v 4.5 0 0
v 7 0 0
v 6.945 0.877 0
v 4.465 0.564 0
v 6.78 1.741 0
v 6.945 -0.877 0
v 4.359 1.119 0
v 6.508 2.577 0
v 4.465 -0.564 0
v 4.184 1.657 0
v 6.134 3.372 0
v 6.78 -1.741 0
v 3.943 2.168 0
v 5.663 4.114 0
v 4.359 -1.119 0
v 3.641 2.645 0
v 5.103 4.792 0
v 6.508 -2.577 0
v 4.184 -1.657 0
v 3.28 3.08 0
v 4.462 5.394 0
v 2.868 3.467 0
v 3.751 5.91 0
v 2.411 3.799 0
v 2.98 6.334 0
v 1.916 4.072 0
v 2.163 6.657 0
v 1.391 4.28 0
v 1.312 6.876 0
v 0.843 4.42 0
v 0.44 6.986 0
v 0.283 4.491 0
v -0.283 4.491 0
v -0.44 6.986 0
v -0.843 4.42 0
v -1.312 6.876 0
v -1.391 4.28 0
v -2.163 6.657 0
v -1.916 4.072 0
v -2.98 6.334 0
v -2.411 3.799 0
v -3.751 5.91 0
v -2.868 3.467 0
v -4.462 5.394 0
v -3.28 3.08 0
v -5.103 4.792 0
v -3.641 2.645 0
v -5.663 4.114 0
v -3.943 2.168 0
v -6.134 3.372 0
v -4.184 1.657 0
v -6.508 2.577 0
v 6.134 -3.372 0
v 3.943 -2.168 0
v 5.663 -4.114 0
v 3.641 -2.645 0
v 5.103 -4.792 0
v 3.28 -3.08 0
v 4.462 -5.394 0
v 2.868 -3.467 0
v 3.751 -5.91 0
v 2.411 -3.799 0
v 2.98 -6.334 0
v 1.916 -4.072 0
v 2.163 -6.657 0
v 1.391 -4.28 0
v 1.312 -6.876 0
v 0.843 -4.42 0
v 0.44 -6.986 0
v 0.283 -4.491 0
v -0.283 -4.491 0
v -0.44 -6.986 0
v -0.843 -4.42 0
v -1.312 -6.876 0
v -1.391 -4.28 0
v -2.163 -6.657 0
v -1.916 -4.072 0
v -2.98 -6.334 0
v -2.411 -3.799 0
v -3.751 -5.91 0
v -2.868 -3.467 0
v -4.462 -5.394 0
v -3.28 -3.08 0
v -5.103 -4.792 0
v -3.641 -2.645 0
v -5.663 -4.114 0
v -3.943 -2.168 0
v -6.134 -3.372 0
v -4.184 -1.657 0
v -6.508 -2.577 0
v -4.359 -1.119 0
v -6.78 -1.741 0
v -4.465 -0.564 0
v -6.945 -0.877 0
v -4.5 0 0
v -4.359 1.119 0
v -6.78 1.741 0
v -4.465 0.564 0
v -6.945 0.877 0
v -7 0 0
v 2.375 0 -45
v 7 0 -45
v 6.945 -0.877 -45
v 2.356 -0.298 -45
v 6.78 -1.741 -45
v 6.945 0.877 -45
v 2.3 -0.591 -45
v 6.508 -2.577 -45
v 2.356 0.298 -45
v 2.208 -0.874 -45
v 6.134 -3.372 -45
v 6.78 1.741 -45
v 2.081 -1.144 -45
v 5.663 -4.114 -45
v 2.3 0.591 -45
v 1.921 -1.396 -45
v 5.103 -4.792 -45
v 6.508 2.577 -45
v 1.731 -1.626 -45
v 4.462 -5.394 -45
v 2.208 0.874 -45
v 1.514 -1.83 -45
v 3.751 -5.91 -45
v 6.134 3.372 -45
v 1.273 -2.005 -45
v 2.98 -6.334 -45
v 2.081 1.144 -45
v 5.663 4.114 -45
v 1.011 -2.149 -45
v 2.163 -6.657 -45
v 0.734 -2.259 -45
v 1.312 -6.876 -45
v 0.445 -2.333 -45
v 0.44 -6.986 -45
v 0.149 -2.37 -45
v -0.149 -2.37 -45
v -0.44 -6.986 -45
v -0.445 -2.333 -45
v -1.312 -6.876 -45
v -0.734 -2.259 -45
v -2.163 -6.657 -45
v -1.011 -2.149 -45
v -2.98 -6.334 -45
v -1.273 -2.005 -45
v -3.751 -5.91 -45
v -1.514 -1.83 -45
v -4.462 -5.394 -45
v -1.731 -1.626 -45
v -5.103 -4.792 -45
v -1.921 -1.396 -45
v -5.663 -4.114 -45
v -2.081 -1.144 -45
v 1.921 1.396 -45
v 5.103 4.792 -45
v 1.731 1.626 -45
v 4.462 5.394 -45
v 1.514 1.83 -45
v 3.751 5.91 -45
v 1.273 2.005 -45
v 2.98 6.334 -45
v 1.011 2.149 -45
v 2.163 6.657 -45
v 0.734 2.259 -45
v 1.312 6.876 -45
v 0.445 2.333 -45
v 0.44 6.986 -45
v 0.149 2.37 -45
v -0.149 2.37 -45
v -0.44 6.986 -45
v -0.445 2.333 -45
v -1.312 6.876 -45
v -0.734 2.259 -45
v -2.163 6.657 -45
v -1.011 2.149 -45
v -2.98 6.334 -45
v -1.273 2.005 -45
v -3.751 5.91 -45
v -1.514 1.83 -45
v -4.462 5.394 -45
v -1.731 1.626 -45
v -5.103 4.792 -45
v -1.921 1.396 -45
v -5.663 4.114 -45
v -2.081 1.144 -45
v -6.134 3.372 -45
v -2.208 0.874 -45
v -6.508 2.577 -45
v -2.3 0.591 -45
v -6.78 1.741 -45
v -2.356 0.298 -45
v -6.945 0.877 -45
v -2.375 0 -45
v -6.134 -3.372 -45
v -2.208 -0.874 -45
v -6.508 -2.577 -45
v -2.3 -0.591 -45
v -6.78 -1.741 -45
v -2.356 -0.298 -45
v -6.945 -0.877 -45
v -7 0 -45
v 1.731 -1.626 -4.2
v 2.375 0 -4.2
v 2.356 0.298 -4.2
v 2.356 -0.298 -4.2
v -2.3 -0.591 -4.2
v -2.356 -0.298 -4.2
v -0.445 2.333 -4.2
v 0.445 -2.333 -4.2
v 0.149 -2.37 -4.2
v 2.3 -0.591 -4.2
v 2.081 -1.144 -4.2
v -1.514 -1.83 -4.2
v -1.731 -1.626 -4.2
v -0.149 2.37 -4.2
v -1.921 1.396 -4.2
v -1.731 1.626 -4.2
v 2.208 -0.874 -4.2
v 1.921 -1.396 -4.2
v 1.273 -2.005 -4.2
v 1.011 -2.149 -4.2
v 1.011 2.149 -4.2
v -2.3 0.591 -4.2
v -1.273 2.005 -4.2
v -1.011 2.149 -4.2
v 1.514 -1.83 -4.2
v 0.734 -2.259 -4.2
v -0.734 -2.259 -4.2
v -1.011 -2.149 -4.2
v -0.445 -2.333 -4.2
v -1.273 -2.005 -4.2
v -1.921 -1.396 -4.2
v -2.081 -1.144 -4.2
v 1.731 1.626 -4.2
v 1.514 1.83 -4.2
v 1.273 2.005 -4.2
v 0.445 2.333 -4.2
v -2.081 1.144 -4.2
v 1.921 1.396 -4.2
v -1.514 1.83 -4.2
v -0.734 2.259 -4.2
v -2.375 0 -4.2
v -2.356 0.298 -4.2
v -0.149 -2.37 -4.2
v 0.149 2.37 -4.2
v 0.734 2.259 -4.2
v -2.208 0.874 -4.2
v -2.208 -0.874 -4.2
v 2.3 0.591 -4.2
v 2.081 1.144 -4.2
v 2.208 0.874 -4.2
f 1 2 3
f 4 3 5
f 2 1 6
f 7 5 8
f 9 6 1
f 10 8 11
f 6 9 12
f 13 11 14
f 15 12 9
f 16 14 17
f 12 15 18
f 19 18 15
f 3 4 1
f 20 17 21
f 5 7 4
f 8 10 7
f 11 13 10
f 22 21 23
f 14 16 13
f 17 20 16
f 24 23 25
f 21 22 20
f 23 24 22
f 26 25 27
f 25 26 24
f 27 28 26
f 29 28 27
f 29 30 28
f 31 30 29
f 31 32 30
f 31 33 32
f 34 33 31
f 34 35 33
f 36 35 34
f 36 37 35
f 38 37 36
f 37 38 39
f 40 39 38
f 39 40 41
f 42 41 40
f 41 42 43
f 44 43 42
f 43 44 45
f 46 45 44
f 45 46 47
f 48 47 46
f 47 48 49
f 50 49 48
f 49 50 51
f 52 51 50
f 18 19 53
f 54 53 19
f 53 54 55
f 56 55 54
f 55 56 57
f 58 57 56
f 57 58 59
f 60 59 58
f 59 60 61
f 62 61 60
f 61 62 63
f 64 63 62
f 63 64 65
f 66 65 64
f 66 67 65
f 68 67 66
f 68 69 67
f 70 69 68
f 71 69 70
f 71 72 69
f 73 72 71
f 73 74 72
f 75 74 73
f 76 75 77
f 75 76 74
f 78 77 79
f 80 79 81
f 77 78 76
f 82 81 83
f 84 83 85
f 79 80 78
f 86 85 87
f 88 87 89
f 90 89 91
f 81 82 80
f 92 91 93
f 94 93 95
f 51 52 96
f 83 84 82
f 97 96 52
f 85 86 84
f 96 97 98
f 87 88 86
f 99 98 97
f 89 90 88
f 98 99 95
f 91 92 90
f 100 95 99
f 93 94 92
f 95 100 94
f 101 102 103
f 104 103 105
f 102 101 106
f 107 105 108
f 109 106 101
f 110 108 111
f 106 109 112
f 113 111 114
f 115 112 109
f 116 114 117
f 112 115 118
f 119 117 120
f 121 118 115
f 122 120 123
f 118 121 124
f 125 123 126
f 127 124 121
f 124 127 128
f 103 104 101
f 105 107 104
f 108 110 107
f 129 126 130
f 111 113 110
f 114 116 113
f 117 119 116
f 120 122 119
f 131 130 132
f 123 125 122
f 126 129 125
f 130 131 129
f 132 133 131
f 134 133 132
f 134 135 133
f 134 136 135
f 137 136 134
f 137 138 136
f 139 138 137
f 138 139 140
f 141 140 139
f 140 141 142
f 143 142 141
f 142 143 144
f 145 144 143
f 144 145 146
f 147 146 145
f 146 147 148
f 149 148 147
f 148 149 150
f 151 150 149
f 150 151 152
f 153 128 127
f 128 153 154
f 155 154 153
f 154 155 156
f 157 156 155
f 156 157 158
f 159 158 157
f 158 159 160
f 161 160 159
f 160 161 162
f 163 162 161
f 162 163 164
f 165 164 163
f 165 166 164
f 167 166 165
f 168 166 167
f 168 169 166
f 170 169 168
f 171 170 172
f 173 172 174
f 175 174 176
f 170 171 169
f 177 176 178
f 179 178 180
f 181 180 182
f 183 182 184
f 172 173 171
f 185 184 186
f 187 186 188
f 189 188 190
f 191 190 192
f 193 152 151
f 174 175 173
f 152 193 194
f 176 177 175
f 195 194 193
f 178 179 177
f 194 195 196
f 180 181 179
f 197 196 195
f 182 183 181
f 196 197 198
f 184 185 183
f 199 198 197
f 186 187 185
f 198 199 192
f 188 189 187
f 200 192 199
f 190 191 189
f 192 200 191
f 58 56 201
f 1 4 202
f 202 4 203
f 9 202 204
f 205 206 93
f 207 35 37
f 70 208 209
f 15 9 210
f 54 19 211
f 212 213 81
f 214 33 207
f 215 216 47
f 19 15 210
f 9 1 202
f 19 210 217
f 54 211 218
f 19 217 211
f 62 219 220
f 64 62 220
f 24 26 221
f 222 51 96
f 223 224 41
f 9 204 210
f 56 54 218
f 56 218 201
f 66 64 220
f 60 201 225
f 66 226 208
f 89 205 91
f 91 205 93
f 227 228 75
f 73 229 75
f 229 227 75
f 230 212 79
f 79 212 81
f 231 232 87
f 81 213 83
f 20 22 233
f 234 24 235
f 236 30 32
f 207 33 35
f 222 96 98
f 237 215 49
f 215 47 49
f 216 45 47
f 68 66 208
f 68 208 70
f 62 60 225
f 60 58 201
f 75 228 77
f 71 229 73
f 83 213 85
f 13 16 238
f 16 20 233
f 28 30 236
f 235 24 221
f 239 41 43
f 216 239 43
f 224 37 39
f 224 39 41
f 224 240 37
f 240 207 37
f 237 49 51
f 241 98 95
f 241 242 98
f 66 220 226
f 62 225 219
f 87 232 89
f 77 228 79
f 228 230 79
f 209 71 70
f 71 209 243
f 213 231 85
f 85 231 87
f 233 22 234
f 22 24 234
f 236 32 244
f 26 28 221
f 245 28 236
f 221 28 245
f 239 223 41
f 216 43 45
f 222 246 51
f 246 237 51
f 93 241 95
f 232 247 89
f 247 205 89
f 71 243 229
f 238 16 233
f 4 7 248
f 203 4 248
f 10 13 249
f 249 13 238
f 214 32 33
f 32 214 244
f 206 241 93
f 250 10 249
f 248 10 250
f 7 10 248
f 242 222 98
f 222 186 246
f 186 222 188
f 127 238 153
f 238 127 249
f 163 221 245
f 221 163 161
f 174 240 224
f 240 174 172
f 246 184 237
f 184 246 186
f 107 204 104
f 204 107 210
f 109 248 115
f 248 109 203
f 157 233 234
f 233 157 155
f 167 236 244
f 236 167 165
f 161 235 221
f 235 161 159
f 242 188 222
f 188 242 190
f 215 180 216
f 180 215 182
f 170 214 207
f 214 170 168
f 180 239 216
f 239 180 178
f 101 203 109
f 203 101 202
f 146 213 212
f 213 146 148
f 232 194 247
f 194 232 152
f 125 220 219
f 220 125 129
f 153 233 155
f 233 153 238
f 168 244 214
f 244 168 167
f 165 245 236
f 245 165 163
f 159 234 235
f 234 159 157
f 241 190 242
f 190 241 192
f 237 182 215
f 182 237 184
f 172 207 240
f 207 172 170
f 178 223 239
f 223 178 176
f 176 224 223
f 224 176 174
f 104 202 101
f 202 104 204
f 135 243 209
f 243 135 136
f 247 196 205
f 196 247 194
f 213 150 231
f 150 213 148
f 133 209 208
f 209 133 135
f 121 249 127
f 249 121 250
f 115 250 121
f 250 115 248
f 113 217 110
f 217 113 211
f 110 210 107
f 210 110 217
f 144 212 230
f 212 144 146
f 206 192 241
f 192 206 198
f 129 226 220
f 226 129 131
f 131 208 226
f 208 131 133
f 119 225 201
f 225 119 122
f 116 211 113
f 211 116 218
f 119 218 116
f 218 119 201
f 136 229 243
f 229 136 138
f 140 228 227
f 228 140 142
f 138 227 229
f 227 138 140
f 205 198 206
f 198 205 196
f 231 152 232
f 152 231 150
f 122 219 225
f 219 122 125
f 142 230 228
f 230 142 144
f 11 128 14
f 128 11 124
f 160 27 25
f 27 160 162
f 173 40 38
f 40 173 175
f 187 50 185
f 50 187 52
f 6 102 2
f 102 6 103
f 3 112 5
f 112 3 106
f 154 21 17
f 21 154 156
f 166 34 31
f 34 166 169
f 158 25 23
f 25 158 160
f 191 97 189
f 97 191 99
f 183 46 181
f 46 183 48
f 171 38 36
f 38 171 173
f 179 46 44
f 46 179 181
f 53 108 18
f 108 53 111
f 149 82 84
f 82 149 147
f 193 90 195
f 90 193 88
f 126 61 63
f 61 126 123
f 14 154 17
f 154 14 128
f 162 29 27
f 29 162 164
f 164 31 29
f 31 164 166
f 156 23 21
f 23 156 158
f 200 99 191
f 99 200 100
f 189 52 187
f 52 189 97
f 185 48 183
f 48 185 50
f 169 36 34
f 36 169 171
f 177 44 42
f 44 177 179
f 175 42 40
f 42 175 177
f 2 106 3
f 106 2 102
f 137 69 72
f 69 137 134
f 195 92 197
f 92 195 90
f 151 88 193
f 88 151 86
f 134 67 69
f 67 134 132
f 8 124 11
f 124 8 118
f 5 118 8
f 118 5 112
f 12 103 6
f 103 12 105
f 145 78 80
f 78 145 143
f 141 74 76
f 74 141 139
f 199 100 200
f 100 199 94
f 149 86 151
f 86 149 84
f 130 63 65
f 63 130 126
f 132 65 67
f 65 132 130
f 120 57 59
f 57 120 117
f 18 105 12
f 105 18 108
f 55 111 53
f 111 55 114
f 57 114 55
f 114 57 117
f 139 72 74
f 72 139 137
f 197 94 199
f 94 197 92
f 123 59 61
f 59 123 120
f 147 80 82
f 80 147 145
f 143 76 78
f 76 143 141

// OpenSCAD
$fn = 50;


difference() {
	union() {
		translate(v = [0, 0, -45.0000000000]) {
			cylinder(h = 45, r = 7.0000000000);
		}
		cylinder(h = 0, r = 13.0000000000);
	}
	union() {
		translate(v = [0, 0, 0]) {
			rotate(a = [0, 0, 0]) {
				difference() {
					union() {
						#translate(v = [0, 0, -45.0000000000]) {
							cylinder(h = 45, r = 2.2500000000);
						}
						#translate(v = [0, 0, -4.2000000000]) {
							cylinder(h = 4.2000000000, r1 = 2.3750000000, r2 = 4.5000000000);
						}
						#translate(v = [0, 0, -45.0000000000]) {
							cylinder(h = 45, r = 2.3750000000);
						}
						#translate(v = [0, 0, -45.0000000000]) {
							cylinder(h = 45, r = 2.2500000000);
						}
					}
					union();
				}
			}
		}
	}
}
